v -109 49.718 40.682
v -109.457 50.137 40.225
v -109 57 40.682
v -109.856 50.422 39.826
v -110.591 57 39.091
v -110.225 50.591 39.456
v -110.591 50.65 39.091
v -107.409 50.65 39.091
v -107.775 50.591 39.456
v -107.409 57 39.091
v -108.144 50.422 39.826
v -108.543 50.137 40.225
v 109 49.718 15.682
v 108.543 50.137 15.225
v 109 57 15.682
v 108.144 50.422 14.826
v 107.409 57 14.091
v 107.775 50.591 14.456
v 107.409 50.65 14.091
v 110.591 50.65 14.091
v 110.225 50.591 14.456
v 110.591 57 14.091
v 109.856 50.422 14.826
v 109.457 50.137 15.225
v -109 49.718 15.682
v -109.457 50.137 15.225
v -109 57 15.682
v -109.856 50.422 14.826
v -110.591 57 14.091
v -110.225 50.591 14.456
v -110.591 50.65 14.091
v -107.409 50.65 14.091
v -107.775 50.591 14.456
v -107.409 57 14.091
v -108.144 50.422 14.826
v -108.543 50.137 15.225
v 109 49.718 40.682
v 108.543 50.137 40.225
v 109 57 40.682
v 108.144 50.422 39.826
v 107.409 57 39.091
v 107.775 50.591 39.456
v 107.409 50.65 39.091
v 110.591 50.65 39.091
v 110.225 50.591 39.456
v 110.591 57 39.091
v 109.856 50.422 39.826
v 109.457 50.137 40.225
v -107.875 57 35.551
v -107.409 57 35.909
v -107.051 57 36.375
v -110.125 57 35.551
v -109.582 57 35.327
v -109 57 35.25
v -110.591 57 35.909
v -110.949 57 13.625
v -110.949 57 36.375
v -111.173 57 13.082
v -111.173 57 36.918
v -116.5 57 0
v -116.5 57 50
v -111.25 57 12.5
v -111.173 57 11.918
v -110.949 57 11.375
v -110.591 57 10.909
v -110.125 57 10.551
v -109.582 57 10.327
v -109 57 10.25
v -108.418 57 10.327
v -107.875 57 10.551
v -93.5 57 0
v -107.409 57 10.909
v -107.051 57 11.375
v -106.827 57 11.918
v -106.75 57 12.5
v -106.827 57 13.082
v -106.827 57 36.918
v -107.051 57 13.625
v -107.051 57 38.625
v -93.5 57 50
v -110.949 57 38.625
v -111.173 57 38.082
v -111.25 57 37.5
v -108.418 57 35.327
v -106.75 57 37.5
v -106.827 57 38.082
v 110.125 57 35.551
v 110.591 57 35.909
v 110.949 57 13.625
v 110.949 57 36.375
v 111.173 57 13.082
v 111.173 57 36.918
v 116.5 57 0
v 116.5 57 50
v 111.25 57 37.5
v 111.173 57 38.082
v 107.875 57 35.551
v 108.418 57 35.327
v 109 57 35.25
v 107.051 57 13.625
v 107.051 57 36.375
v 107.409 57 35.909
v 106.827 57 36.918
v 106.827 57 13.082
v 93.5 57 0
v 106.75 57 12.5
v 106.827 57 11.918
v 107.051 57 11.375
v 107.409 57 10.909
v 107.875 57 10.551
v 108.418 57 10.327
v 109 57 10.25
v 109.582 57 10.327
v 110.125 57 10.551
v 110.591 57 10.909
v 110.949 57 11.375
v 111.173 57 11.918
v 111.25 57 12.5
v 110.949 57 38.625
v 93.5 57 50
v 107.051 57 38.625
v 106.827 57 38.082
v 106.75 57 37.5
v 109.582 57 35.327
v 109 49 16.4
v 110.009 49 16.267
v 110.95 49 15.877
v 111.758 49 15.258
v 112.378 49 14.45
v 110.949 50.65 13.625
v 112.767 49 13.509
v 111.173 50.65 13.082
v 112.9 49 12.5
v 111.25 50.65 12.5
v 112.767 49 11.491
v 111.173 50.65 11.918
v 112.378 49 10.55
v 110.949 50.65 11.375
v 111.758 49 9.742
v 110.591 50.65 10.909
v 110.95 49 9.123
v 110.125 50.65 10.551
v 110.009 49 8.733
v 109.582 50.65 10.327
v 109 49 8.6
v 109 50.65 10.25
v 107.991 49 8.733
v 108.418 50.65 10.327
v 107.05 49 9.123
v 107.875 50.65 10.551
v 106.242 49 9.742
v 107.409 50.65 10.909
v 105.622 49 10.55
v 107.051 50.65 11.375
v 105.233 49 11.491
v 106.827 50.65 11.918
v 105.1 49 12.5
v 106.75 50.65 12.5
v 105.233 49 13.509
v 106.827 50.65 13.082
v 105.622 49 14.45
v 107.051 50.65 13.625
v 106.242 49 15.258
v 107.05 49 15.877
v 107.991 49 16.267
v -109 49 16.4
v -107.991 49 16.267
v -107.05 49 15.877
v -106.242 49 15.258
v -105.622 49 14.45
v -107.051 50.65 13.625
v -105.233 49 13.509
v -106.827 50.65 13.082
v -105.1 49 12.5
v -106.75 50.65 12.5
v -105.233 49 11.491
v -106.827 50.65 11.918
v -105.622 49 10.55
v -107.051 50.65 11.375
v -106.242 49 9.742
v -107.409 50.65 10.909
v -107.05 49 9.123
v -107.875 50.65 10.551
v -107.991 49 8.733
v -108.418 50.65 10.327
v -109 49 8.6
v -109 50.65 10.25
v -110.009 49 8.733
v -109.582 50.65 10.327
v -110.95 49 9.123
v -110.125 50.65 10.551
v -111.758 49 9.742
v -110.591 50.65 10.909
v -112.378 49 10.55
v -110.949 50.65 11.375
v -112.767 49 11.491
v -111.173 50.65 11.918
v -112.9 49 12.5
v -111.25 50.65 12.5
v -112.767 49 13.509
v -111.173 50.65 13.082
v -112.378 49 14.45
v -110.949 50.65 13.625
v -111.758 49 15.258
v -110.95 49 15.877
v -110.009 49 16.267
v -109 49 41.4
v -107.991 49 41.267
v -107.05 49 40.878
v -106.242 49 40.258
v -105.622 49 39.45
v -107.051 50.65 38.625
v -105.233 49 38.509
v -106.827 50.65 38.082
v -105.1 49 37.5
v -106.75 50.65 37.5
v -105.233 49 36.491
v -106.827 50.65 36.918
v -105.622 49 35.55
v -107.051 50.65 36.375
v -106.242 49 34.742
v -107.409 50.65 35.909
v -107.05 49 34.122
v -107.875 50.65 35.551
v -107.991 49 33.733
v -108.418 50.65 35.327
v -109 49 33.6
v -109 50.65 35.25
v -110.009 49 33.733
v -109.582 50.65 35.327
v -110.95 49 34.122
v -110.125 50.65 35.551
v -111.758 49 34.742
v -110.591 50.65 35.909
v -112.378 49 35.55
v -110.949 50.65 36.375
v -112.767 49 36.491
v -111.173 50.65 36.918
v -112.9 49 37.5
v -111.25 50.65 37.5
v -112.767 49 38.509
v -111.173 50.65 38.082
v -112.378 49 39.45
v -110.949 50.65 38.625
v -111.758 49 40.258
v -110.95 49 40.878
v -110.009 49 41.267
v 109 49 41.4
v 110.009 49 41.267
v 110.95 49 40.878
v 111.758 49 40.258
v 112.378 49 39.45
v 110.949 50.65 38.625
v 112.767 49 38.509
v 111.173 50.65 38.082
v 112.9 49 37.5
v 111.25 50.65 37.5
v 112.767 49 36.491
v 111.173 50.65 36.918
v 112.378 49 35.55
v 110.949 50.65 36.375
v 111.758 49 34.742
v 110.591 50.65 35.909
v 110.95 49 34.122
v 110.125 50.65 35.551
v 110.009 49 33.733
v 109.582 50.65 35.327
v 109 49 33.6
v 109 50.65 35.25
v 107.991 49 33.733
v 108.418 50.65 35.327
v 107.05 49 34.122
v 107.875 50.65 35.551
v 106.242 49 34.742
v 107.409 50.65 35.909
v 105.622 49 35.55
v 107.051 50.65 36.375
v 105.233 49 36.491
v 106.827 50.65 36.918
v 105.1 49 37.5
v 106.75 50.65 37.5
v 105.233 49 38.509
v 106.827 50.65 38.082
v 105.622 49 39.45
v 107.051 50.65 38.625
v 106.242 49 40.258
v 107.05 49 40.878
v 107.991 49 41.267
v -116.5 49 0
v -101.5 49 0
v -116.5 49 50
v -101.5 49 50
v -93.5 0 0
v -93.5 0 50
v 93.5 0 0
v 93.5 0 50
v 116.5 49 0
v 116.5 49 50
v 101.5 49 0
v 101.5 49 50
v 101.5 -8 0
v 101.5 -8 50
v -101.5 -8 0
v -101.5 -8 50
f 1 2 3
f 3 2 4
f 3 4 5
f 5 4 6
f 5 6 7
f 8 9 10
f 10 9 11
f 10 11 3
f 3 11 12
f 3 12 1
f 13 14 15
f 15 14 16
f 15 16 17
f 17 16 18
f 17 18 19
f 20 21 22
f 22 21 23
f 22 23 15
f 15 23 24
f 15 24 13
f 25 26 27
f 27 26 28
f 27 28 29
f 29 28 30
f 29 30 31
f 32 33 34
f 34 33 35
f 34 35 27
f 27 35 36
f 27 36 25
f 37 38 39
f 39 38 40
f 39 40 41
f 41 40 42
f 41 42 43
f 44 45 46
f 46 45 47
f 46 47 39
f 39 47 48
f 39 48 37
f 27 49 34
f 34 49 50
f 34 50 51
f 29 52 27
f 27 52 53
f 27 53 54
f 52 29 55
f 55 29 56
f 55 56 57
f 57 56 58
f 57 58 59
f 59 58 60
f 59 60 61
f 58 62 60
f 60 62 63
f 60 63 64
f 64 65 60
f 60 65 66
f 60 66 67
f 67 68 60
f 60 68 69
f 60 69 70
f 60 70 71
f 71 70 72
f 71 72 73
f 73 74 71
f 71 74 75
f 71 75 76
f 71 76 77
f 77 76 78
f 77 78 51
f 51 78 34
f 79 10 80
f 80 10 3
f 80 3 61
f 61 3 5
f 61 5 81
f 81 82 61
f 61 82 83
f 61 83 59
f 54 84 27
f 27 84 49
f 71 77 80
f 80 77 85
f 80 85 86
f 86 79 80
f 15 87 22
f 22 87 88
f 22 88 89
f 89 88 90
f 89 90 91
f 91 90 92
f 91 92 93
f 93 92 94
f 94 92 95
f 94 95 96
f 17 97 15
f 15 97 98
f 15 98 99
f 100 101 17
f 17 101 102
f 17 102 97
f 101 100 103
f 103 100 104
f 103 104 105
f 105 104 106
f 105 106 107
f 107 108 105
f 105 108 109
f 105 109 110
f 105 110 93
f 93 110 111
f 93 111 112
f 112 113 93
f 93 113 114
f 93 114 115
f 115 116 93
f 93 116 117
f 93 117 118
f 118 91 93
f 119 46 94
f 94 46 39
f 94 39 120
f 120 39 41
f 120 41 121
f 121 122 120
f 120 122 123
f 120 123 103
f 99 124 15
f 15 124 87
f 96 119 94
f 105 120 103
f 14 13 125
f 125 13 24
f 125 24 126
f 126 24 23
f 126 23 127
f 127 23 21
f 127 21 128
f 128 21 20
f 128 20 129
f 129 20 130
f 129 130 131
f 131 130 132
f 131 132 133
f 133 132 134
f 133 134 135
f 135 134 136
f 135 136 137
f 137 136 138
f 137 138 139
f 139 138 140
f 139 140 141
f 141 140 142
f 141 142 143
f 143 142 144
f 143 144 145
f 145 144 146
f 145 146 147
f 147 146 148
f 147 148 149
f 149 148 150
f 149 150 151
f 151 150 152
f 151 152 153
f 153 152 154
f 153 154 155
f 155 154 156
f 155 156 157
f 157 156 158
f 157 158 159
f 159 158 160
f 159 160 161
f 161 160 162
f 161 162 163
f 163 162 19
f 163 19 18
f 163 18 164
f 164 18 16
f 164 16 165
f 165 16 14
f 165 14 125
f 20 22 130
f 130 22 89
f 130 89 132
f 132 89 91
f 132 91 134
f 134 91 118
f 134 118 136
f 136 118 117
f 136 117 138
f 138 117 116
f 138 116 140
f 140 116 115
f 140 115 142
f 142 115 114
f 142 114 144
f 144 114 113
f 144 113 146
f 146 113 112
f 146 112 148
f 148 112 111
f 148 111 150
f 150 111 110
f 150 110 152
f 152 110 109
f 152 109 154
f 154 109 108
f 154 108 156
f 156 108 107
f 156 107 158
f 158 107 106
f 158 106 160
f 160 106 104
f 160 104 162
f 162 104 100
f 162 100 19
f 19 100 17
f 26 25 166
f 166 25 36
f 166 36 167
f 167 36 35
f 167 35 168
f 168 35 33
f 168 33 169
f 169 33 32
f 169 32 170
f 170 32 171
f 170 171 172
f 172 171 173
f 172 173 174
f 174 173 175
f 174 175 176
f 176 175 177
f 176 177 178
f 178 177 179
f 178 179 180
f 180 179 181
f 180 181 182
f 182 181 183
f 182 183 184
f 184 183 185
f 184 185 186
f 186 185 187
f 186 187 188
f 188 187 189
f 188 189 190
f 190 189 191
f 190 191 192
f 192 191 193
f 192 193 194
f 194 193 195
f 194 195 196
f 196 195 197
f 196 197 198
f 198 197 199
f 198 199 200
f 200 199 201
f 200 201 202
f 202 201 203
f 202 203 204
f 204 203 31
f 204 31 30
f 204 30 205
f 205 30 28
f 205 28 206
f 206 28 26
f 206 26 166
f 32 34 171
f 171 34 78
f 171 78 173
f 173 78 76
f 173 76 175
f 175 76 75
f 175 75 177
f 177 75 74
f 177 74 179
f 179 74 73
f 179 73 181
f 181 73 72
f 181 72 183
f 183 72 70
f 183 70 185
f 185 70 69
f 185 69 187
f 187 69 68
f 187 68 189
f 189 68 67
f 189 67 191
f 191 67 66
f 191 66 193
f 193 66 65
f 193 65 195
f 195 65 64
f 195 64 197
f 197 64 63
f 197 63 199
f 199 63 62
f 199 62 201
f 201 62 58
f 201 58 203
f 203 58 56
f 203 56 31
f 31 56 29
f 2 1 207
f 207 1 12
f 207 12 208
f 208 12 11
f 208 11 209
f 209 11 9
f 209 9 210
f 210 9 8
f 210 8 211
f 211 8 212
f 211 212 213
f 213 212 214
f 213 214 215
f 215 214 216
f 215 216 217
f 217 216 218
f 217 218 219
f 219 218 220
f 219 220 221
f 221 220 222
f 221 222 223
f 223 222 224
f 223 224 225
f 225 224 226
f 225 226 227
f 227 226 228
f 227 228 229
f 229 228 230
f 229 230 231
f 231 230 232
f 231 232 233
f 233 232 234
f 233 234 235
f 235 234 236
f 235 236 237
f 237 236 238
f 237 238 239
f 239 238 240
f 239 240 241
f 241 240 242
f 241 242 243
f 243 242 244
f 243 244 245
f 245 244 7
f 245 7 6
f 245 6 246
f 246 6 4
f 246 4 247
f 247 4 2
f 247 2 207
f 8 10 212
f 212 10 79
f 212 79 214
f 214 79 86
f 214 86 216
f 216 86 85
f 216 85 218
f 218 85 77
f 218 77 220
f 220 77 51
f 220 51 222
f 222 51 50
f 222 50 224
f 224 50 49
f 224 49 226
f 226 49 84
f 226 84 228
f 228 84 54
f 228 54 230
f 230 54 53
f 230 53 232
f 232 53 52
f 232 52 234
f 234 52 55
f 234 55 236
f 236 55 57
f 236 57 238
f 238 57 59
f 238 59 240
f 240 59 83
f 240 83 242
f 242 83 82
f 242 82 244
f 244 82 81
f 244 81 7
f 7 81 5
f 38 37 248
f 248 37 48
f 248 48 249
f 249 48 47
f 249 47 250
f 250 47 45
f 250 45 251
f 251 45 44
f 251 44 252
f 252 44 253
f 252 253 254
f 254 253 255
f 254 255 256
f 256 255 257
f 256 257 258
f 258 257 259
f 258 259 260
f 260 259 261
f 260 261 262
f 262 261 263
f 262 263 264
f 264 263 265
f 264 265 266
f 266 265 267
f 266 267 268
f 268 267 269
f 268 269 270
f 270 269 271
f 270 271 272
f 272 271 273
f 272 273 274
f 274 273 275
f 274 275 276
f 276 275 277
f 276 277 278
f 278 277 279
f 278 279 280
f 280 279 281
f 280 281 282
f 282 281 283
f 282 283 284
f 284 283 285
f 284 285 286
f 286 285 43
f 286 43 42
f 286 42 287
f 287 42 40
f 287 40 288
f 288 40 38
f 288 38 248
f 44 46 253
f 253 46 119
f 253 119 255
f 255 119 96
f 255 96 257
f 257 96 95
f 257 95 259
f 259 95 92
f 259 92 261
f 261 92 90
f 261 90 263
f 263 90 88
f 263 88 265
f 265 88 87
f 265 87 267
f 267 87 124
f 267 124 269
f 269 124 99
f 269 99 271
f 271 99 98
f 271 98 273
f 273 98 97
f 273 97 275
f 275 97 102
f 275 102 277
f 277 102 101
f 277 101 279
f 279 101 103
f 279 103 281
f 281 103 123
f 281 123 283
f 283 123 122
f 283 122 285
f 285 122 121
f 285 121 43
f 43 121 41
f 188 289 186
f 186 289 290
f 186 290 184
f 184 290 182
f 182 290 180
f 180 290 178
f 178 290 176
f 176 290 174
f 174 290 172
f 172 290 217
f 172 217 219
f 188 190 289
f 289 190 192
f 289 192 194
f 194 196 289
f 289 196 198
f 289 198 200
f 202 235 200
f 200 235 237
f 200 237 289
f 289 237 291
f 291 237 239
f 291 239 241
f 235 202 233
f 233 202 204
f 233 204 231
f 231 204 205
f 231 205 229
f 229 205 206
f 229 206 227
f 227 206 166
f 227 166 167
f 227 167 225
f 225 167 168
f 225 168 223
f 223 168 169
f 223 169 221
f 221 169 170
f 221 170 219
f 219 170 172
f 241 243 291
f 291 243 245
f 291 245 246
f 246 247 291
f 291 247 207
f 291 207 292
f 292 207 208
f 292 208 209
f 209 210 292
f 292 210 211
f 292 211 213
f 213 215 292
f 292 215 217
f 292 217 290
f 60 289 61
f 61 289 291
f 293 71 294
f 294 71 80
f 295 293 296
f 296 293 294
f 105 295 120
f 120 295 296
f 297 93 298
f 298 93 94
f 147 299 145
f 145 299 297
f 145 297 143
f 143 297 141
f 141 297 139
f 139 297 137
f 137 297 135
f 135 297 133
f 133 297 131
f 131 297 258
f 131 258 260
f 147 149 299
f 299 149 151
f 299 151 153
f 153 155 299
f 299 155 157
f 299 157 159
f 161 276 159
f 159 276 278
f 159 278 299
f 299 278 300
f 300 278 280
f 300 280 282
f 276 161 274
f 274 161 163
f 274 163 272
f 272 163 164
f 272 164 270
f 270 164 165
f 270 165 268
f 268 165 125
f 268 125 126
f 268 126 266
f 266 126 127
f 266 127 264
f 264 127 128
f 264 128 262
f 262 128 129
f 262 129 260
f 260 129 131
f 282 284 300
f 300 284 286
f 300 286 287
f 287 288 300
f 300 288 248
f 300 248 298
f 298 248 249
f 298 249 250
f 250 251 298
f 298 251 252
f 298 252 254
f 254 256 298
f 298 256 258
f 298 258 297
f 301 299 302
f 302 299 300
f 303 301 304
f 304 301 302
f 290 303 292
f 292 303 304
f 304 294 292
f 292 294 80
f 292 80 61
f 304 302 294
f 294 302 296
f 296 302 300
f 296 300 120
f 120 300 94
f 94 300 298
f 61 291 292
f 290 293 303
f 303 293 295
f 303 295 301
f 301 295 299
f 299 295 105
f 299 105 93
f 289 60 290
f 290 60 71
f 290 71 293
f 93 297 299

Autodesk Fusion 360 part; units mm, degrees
sketch "Outline" plane through (0, 0, 0) normal (0, 0, 1) x (1, 0, 0)
  line L0 (0, 0) -> (0, 56.9537) construction
  line L1 (0, 0) -> (93.5, 0)
  line L2 (93.5, 0) -> (93.5, 57)
  line L3 (93.5, 57) -> (116.5, 57)
  line L4 (116.5, 57) -> (116.5, 49)
  line L5 (-93.5, 57) -> (-116.5, 57)
  line L6 (-93.5, 0) -> (-93.5, 57)
  line L7 (0, 0) -> (-93.5, 0)
  line L8 (-101.5, -8) -> (-101.5, 49)
  line L9 (-101.5, 49) -> (-116.5, 49)
  line L10 (-116.5, 57) -> (-116.5, 49)
  line L11 (101.5, -8) -> (101.5, 49)
  line L12 (101.5, 49) -> (116.5, 49)
  line L13 (-101.5, -8) -> (101.5, -8)
  dimension "d2" = 187
  dimension "d3" = 57
  dimension "d6" = 23
  dimension "d8" = 8
  dimension "d9" = 8
  dimension "d10" = 8
extrude "Extrude1" add sketch "Outline" along normal blind 50
sketch "Holes for Mounting" plane through (0, 49, 0) normal (0, -1, 0) x (1, 0, 0)
  line L0 (-116.5, 0) -> (-101.5, 0)
  line L1 (-101.5, 0) -> (-101.5, 50)
  line L2 (-101.5, 50) -> (-116.5, 50)
  line L3 (-116.5, 50) -> (-116.5, 0)
  line L4 (101.5, 0) -> (116.5, 0)
  line L5 (116.5, 0) -> (116.5, 50)
  line L6 (116.5, 50) -> (101.5, 50)
  line L7 (101.5, 50) -> (101.5, 0)
  line L8 (0, 0) -> (0, 29.5518) construction
  line L9 (-109, 50) -> (-109, 0) construction
  circle A0 centre (-109, 12.5) radius 4
  line L10 (-116.5, 25) -> (-101.5, 25) construction
  circle A1 centre (-109, 37.5) radius 4
  circle A2 centre (109, 12.5) radius 4
  circle A3 centre (109, 37.5) radius 4
  dimension "d13" = 25
  dimension "d14" = 8
hole "Hole1" at (-109, 49, 12.5) at (-109, 49, 37.5) at (109, 49, 12.5) at (109, 49, 37.5) direction (0, 1, 0) diameter 4.5 depth 15 tip angle 118 countersink diameter 7.8 countersink angle 90
sketch "Make those holes 3d printable" plane through (0, 49, 0) normal (0, -1, 0) x (1, 0, 0)
  circle A0 centre (-109, 37.5) radius 2.25
  circle A1 centre (-109, 12.5) radius 2.25
  circle A2 centre (-109, 12.5) radius 3.9
  circle A3 centre (-109, 37.5) radius 3.9
  line L0 (-116.5, 0) -> (-101.5, 0)
  line L1 (-101.5, 0) -> (-101.5, 50)
  line L2 (-101.5, 50) -> (-116.5, 50)
  line L3 (-116.5, 50) -> (-116.5, 0)
  circle A4 centre (109, 12.5) radius 2.25
  circle A5 centre (109, 12.5) radius 3.9
  circle A6 centre (109, 37.5) radius 3.9
  line L4 (101.5, 0) -> (116.5, 0)
  line L5 (116.5, 0) -> (116.5, 50)
  line L6 (116.5, 50) -> (101.5, 50)
  line L7 (101.5, 50) -> (101.5, 0)
  circle A7 centre (109, 37.5) radius 2.25
  line L8 (0, 0) -> (0, 31.3528) construction
  line L9 (-109, 12.5) -> (-109, 37.5) construction
  line L10 (-109, 15.682) -> (-107.409, 14.091)
  line L11 (-109, 15.682) -> (-110.591, 14.091)
  line L12 (-109, 37.5) -> (-109, 47.9653) construction
  line L13 (-109, 40.682) -> (-107.409, 39.091)
  line L14 (-109, 40.682) -> (-110.591, 39.091)
  line L15 (109, 40.682) -> (110.591, 39.091)
  line L16 (109, 40.682) -> (107.409, 39.091)
  line L17 (109, 15.682) -> (110.591, 14.091)
  line L18 (109, 15.682) -> (107.409, 14.091)
extrude "Extrude2" cut sketch "Make those holes 3d printable" against normal blind 8 contours A0 L13 L14 | A1 L10 L11 | A4 L17 L18 | A7 L15 L16
equation "d6 = 15 mm + 8 mm"
equation "d9 = d8"
equation "d10 = d8"
